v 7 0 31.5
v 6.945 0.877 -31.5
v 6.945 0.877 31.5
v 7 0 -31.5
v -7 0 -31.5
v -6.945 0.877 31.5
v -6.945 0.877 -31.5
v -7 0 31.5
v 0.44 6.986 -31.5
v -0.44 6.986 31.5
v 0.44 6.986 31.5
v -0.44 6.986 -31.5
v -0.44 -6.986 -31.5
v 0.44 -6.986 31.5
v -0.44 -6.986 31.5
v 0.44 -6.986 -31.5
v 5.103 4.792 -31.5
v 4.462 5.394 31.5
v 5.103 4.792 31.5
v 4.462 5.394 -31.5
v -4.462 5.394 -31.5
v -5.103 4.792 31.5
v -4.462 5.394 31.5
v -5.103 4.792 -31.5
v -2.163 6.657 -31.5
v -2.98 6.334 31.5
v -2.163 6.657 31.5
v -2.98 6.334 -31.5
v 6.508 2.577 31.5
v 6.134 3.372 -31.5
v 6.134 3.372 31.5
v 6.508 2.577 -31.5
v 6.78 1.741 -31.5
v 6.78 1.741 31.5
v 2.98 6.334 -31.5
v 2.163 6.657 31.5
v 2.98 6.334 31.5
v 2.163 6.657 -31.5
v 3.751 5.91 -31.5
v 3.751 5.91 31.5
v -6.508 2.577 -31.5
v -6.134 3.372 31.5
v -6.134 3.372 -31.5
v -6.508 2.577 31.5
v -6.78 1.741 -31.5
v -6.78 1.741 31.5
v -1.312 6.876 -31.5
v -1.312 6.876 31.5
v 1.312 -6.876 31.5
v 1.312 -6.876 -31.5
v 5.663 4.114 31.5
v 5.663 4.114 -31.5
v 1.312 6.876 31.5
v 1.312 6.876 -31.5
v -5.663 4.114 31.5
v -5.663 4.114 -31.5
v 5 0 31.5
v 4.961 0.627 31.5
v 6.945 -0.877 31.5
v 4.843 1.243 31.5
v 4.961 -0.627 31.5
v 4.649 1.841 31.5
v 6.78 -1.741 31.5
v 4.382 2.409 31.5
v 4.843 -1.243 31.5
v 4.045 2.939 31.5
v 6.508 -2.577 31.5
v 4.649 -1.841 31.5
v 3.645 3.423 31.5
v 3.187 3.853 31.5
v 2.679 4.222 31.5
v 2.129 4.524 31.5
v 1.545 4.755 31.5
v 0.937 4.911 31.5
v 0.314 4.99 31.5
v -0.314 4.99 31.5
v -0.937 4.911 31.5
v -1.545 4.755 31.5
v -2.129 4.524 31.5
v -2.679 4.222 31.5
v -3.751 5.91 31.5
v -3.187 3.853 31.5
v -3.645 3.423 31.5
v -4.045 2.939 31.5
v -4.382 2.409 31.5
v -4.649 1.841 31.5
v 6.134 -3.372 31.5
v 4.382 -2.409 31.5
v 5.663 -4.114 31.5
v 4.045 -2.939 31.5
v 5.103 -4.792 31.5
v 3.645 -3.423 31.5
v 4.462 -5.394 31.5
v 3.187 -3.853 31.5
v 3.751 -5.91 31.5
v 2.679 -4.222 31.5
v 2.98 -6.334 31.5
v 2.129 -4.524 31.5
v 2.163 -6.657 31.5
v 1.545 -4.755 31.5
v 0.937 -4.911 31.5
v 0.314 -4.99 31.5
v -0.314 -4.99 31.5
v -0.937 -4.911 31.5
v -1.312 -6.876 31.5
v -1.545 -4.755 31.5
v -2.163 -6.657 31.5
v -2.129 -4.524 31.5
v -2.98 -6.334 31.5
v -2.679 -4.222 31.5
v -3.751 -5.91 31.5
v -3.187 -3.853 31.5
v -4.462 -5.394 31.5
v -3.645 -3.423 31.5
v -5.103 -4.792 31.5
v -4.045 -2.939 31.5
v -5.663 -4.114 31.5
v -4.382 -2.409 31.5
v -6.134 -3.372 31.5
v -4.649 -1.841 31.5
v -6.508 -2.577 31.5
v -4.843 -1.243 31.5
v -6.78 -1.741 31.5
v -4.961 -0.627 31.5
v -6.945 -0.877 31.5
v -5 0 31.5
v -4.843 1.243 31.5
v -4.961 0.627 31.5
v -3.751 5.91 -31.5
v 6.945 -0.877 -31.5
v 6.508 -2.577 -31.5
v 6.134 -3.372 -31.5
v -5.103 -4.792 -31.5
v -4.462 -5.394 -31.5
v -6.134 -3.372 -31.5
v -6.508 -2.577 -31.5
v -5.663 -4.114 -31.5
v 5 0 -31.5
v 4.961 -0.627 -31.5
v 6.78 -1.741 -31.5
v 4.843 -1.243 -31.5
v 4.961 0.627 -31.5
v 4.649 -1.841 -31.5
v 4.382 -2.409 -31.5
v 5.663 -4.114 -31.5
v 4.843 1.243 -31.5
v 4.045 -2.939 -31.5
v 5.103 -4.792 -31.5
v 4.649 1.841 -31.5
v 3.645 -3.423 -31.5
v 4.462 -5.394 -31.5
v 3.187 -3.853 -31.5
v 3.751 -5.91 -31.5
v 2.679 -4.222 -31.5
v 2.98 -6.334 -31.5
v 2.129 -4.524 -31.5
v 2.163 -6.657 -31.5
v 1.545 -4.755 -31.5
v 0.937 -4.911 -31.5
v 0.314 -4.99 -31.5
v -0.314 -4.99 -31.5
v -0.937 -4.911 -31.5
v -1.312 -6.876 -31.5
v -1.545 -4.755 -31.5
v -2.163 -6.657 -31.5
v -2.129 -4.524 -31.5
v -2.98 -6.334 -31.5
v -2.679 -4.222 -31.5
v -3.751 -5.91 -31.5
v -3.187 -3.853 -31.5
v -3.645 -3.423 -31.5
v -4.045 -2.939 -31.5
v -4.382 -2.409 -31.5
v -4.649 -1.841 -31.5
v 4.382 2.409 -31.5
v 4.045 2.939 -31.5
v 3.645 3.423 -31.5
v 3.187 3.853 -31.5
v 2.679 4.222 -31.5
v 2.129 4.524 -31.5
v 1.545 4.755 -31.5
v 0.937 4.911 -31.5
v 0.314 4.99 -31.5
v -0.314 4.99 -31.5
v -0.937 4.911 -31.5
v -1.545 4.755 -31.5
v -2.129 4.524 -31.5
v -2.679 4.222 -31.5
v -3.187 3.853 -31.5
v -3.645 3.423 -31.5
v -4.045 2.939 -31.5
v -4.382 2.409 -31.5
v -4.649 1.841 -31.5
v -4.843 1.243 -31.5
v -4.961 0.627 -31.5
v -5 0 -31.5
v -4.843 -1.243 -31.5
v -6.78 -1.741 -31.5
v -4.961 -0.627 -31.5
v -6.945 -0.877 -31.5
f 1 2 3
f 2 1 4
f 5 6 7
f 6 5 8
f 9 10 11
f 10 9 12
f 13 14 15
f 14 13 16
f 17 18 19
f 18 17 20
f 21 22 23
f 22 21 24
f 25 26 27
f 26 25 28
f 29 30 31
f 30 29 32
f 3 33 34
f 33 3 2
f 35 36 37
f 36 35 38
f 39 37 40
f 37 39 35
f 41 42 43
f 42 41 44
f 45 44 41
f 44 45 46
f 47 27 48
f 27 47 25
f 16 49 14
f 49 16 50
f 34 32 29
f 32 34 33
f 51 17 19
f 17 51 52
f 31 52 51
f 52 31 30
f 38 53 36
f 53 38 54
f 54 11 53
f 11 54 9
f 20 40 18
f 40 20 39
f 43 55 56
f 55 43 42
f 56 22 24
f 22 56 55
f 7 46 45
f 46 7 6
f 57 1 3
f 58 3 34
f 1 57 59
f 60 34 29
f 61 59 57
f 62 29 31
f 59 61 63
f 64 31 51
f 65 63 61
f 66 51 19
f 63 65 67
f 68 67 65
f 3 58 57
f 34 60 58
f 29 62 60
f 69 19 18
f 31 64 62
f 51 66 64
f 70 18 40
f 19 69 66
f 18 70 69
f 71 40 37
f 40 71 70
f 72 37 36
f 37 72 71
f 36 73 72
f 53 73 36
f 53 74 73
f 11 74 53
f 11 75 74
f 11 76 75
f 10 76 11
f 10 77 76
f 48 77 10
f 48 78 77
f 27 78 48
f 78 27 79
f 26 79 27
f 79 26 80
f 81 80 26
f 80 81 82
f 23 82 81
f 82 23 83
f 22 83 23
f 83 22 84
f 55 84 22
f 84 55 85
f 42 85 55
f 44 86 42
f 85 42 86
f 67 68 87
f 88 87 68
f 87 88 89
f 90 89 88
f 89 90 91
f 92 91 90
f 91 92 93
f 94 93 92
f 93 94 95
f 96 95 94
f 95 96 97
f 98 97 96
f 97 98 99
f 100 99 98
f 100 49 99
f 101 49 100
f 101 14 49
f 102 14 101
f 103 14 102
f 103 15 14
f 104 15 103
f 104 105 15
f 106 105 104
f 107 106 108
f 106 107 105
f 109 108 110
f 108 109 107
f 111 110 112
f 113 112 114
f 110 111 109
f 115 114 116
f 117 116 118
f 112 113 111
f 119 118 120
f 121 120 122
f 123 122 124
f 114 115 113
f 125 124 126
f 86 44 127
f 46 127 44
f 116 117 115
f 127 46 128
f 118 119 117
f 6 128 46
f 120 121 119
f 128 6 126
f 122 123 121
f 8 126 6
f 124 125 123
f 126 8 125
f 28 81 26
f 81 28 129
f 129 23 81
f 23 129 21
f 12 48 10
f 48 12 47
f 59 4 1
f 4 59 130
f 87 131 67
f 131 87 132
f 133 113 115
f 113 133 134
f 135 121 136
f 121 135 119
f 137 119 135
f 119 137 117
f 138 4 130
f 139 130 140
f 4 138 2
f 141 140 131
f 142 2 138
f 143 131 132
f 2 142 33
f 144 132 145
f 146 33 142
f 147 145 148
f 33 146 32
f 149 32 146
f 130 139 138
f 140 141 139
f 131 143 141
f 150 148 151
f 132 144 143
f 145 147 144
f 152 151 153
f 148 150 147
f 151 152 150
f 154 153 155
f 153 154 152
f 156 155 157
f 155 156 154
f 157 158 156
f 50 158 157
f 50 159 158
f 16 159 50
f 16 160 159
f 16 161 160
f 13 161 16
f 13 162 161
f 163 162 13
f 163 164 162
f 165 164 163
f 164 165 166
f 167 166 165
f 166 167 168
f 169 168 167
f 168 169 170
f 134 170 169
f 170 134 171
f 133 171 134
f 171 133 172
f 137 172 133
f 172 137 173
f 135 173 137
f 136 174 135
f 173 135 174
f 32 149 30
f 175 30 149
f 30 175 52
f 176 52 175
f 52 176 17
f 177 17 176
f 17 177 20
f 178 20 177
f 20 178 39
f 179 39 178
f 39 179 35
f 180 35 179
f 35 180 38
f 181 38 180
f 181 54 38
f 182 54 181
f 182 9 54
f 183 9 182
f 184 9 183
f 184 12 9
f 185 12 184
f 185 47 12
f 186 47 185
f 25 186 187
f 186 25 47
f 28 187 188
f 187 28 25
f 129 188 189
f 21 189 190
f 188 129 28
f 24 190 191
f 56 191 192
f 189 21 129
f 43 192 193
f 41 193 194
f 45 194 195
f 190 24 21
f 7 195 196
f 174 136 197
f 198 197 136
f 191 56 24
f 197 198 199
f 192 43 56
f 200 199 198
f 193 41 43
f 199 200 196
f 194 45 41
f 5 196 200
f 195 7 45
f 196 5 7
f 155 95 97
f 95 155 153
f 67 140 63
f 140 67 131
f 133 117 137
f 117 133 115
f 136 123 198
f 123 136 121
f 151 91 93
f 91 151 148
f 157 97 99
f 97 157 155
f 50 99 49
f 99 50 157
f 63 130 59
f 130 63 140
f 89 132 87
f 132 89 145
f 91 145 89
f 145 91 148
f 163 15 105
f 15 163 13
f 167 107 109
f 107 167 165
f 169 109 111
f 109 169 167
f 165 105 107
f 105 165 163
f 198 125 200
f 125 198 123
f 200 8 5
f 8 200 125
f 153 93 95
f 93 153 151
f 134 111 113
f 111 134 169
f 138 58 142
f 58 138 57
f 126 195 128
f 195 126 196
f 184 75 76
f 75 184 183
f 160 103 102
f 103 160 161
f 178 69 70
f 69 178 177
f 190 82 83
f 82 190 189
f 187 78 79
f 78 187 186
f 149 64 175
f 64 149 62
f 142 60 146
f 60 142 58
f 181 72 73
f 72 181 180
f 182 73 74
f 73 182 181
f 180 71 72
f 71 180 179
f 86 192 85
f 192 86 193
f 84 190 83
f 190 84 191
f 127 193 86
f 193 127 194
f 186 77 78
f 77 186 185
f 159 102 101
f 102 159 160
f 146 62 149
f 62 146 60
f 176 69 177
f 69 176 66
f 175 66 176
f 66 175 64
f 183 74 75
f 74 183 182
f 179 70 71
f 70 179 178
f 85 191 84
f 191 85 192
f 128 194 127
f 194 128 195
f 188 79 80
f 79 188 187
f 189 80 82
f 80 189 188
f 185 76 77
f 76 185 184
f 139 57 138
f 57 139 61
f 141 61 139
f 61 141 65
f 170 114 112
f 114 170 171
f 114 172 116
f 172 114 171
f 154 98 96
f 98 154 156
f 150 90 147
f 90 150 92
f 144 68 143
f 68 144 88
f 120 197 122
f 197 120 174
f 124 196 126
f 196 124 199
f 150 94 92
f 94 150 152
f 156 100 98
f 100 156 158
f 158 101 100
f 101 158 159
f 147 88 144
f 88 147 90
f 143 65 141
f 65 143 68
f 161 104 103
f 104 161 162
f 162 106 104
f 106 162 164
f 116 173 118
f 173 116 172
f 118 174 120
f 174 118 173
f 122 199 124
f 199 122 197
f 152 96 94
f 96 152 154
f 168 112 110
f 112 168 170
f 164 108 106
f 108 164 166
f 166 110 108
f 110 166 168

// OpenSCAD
$fn = 50;


difference() {
	union() {
		translate(v = [0, 0, -31.5000000000]) {
			cylinder(h = 63, r = 7.0000000000);
		}
	}
	union() {
		translate(v = [0, 0, -100.0000000000]) {
			cylinder(h = 200, r = 5.0000000000);
		}
	}
}
